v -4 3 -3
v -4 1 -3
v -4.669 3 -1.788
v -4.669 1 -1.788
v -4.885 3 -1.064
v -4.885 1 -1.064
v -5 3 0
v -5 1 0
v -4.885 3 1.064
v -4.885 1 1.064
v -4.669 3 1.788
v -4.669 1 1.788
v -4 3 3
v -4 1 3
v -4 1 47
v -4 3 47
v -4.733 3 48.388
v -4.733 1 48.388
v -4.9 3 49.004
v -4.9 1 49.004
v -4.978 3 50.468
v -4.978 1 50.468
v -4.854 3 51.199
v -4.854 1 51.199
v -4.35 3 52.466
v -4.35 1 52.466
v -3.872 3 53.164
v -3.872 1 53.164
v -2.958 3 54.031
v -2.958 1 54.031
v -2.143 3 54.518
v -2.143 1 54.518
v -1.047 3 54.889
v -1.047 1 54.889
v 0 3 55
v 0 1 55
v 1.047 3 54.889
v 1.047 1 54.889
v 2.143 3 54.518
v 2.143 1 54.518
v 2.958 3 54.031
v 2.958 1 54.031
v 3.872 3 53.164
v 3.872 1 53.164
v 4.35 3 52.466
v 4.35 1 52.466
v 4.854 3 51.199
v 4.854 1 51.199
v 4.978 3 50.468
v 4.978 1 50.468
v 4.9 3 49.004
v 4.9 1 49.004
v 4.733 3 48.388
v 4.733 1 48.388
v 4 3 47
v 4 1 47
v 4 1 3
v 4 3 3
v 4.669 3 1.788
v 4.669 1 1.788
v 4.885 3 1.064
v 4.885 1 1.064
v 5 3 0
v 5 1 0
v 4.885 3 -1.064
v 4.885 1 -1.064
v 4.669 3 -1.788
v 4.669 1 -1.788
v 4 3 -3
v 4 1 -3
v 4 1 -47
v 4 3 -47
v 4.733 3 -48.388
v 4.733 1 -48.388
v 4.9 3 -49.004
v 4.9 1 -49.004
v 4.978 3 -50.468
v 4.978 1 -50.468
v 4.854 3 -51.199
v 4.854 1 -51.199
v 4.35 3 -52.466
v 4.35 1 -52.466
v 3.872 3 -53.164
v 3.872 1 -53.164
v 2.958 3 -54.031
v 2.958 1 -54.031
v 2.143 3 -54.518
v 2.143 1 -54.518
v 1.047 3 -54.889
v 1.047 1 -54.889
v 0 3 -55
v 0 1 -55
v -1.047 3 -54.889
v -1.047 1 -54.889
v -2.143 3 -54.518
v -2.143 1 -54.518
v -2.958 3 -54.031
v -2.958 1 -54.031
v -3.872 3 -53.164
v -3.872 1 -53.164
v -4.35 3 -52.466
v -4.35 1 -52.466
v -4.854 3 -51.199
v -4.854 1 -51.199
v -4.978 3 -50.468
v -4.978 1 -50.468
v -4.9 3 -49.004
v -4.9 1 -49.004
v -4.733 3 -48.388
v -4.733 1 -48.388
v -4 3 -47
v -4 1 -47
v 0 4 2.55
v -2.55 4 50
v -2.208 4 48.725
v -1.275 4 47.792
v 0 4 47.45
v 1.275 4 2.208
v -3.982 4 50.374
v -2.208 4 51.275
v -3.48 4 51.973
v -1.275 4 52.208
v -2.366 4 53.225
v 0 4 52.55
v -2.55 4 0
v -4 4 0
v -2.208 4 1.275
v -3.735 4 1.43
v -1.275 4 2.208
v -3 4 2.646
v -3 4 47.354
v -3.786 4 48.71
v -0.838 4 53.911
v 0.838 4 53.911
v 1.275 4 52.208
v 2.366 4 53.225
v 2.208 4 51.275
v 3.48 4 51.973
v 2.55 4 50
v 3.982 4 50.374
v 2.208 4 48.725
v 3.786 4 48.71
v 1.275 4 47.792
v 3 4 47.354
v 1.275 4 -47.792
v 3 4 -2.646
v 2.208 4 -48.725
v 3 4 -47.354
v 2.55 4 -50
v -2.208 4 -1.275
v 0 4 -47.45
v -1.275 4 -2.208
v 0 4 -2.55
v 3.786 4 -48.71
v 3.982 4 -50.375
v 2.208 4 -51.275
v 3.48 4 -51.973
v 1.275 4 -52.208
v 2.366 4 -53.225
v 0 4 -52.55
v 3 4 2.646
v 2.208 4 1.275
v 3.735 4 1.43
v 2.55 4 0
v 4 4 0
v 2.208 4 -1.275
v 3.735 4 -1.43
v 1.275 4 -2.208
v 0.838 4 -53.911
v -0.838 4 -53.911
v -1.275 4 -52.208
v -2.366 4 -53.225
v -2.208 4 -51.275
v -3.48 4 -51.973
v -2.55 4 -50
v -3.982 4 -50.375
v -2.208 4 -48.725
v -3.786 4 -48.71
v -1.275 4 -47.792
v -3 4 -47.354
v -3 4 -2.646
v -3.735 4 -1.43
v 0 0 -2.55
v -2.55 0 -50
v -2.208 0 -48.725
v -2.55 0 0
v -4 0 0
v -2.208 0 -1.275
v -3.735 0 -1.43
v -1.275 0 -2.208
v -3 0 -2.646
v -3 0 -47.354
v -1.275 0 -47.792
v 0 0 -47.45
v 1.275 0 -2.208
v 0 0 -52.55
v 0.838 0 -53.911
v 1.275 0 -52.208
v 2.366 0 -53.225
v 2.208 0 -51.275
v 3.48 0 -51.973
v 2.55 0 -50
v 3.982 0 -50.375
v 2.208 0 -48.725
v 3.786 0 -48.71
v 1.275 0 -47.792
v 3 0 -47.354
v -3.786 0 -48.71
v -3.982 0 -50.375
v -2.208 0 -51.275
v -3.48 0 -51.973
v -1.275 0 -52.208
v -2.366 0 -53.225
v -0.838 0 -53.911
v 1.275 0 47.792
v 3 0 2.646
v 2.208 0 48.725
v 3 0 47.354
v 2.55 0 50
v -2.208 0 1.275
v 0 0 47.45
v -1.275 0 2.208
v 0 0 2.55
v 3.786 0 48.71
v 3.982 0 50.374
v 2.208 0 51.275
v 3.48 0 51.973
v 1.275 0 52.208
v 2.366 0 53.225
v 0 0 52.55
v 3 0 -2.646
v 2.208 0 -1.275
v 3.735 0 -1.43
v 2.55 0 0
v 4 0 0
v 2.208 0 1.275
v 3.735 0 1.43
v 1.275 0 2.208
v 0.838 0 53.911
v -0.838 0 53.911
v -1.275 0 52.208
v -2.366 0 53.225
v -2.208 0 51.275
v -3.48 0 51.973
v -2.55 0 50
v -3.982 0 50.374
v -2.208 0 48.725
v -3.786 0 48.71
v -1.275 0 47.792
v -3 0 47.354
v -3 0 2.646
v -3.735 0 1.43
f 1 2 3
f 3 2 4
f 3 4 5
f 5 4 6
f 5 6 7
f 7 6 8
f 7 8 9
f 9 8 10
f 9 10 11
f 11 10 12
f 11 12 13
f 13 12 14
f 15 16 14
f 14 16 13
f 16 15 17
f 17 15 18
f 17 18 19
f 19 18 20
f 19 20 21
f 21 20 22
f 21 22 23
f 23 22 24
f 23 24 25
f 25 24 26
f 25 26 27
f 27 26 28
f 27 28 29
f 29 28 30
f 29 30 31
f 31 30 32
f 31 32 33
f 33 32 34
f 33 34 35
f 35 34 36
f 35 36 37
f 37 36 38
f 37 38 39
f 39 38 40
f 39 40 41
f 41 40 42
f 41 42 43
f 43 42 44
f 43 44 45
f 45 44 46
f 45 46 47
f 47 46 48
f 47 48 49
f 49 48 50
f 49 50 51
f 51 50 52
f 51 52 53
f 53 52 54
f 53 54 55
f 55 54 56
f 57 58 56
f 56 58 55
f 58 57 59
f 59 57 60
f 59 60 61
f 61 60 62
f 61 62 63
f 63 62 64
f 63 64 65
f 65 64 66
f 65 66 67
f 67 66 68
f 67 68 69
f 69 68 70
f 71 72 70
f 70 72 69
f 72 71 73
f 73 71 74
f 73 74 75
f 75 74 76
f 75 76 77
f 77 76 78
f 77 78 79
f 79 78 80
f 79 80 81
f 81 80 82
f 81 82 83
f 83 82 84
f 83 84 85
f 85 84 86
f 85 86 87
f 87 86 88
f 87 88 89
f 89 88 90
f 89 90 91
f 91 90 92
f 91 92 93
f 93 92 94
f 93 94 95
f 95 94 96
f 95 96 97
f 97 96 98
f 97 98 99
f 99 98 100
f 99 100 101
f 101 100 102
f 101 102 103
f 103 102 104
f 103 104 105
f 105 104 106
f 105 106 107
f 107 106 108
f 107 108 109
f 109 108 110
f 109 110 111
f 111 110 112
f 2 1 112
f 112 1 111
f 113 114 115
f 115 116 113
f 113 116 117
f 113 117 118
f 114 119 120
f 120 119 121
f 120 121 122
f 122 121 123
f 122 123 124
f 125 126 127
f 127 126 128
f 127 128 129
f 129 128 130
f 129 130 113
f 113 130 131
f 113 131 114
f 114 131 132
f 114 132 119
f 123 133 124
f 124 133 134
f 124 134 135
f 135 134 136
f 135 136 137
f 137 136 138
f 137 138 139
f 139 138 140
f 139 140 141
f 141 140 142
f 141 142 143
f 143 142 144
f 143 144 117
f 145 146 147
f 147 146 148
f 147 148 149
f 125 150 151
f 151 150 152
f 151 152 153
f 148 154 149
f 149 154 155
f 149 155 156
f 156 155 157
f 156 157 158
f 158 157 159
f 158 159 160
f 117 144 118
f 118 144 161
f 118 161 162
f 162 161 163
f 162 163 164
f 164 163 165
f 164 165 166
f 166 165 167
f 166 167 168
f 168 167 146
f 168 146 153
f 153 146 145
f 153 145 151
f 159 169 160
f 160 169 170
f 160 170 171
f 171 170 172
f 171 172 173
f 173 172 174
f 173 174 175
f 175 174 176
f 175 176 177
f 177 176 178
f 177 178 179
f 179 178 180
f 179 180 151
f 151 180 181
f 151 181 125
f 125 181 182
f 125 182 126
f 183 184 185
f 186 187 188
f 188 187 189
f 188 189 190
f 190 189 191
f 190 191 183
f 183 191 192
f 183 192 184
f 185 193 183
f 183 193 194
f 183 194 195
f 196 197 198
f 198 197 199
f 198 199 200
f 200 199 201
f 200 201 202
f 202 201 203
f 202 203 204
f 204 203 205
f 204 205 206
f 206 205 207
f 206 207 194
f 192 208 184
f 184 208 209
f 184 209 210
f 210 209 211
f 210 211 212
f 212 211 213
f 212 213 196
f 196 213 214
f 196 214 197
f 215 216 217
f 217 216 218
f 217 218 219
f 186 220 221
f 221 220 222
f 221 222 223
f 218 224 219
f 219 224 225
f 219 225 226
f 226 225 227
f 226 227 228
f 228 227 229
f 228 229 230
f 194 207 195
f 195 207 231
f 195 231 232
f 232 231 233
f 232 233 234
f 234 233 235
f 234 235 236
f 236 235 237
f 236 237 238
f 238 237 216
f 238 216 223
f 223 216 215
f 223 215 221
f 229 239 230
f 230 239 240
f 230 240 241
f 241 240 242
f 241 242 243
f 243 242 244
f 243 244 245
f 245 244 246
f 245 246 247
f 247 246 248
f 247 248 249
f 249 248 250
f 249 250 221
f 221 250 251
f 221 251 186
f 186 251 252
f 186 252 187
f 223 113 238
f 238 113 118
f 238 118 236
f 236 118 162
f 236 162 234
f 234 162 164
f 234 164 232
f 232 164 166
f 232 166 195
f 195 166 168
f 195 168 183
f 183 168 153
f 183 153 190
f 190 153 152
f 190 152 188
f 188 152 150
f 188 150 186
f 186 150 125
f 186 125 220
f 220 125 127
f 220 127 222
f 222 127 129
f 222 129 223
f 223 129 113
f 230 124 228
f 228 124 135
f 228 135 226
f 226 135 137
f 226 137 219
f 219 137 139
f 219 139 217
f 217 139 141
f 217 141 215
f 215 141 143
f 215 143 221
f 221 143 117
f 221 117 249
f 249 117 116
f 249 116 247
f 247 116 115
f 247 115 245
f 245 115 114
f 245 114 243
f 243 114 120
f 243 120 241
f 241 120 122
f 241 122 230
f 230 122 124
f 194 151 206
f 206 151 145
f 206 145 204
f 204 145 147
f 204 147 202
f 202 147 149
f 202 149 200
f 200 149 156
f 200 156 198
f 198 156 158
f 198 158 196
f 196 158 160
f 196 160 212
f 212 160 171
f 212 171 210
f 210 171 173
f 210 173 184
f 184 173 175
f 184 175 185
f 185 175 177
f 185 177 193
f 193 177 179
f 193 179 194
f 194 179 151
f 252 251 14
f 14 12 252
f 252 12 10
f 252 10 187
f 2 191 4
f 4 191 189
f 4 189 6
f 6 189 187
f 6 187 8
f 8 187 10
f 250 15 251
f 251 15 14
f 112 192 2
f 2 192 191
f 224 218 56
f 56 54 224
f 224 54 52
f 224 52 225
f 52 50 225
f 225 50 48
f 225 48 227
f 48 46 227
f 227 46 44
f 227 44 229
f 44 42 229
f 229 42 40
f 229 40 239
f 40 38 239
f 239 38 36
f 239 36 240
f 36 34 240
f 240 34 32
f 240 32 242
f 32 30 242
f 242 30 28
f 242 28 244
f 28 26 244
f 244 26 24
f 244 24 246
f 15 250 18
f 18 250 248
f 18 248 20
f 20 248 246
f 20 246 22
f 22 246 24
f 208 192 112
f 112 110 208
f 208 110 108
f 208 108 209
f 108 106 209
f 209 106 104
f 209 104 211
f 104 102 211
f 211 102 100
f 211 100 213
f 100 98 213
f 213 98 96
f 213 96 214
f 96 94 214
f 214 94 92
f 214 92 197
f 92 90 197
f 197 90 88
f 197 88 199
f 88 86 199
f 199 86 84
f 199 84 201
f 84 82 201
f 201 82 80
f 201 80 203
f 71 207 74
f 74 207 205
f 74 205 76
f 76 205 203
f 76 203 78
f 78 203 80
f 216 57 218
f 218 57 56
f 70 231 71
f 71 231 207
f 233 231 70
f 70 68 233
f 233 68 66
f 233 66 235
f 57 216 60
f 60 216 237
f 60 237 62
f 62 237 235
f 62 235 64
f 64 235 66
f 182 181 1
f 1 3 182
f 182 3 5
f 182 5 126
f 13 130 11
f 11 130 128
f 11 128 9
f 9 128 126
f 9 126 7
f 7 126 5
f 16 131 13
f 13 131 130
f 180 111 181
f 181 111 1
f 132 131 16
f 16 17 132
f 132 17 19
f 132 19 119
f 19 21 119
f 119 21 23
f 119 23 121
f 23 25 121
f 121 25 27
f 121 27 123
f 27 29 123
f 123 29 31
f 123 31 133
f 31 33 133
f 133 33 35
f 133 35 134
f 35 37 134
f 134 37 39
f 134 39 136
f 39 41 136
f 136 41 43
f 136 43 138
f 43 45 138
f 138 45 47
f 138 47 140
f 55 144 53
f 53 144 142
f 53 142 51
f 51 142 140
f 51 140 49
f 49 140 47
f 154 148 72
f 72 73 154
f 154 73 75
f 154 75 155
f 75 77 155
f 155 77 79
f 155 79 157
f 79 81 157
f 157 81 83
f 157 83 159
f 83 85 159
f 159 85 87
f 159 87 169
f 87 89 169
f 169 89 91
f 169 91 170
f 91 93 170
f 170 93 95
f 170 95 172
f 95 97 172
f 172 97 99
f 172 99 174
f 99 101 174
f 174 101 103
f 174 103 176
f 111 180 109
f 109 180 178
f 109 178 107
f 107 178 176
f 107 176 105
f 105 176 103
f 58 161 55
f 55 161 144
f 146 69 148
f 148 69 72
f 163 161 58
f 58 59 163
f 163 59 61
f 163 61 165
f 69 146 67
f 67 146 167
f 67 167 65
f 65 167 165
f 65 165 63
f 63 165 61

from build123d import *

# Parameters (mm, degrees)
EXTRUDE_1_DEPTH     = 4
SKETCH_2_R          = 2.55
CUT_EXTRUDE_1_DEPTH = 56.3714728
CHAMFER_1_SIZE      = 1


with BuildPart() as part:
    # 草图1 → 凸台-拉伸1 (new body)
    with BuildSketch(Plane(origin=(0, 0, 0), x_dir=(1, 0, 0), z_dir=(0, 1, 0))):
        with BuildLine():
            Line((-4, 47), (-4, 3))
            ThreePointArc((-4, 3), (-5, 0), (-4, -3))
            Line((-4, -3), (-4, -47))
            ThreePointArc((-4, -47), (0, -55), (4, -47))
            Line((4, -47), (4, -3))
            ThreePointArc((4, -3), (5, 0), (4, 3))
            Line((4, 3), (4, 47))
            ThreePointArc((4, 47), (0, 55), (-4, 47))
        make_face()
    extrude(amount=EXTRUDE_1_DEPTH)

    # 草图2 → 切除-拉伸1 (cut, through all)
    with BuildSketch(Plane(origin=(0, 4, 0), x_dir=(1, 0, 0), z_dir=(0, 1, 0))):
        with Locations(Location((0, 50, 0), (0, 0, 270))):
            Circle(SKETCH_2_R)
        with Locations(Location((0, -50, 0), (0, 0, 90))):
            Circle(SKETCH_2_R)
        with Locations(Location((0, 0, 0), (0, 0, 270))):
            Circle(SKETCH_2_R)
    extrude(amount=-CUT_EXTRUDE_1_DEPTH, mode=Mode.SUBTRACT)

    # 倒角1
    chamfer_1_edges = [part.edges().sort_by_distance(p)[0] for p in [
        (4, 0, 25),
        (0, 0, 55),
        (-4, 0, 25),
        (-5, 0, 0),
        (0, 4, 55),
        (4, 4, 25),
        (5, 4, 0),
        (4, 4, -25),
        (0, 4, -55),
        (-4, 4, -25),
        (-5, 4, 0),
        (-4, 0, -25),
        (-4, 4, 25),
        (0, 0, -55),
        (4, 0, -25),
        (5, 0, 0),
    ]]
    chamfer(chamfer_1_edges, length=CHAMFER_1_SIZE)


solid = part.part
